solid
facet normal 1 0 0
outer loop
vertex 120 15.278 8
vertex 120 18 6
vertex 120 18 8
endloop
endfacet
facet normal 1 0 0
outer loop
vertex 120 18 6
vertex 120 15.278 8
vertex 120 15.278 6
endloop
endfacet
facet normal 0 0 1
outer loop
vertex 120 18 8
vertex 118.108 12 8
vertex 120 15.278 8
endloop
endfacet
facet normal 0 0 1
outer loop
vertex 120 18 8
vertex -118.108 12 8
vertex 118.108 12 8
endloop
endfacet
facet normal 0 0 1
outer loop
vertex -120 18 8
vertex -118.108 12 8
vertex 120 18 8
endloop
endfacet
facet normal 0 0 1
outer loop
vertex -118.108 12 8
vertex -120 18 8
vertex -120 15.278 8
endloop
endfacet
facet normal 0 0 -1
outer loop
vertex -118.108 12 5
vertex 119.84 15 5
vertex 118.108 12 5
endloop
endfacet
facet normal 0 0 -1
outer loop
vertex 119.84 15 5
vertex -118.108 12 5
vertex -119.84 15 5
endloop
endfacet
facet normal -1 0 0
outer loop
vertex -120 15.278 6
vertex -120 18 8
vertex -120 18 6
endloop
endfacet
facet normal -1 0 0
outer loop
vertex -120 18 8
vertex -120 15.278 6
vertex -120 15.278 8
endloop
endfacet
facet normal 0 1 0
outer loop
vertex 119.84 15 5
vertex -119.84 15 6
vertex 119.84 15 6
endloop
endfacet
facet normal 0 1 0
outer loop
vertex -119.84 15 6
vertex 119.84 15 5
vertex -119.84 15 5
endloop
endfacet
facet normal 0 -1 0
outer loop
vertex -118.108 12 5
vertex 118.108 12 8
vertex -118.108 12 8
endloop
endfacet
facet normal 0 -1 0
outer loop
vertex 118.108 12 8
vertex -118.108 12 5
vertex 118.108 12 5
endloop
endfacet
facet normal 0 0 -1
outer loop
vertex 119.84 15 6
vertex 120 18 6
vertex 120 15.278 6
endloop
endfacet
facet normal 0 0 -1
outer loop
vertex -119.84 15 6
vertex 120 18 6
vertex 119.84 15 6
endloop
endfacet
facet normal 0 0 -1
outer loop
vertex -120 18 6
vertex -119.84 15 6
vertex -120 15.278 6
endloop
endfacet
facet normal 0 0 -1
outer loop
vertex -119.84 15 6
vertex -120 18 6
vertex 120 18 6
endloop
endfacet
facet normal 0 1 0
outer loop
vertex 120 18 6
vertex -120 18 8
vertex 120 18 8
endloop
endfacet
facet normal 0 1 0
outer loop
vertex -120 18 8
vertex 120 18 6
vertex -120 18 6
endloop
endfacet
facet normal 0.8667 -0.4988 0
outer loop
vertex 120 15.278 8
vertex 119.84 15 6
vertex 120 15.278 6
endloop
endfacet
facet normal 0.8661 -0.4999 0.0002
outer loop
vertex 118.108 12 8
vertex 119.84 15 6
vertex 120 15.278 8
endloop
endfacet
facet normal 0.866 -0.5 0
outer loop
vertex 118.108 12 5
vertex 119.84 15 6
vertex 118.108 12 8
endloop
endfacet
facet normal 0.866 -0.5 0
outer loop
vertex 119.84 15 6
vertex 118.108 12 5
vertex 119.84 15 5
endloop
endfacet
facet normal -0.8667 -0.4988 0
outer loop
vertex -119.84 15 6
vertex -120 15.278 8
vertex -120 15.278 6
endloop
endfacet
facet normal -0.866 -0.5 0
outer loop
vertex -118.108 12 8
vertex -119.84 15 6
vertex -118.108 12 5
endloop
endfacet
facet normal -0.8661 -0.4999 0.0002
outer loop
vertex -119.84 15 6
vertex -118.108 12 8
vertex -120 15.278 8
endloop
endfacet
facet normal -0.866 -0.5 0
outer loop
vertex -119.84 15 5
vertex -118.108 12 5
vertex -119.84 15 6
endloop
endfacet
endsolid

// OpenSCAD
// file: catchnhole/catchnhole.scad
// catchnhole: because nutsnbolts was taken
// Purpose: an ergonomic way to create nutcatches and screw holes.

// License: MIT

A_LOT = 200;

bolts = import("bolts.json");
nuts = import("nuts.json");

DEFAULT_HEAD_DIAMETER_CLEARANCE = 0.1;
DEFAULT_BOLT_KIND = "headless";
DEFAULT_NUT_KIND = "hexagon";

function hex_inscribed_circle_d (w) = 2 * w / sqrt(3);

function bolt_data (options = undef, kind = DEFAULT_BOLT_KIND) = 
  is_undef(options) ? bolts : (is_string(options) ? bolts[options][kind] : options);

function nut_data (options = undef, kind = DEFAULT_NUT_KIND) =
  is_undef(options) ? nuts : (is_string(options) ? nuts[options][kind] : options);

function bolt_diameter (options) = 
  let (h = bolt_data(options))
    is_undef(h) ? h : h.diameter;

function bolt_head_length (options, kind = DEFAULT_BOLT_KIND) =
  let (h = bolt_data(options, kind))
    is_undef(h) ? h : is_undef(h.head_length) ? 0 : h.head_length;

function nut_height (options, kind = DEFAULT_NUT_KIND) =
  let (h = nut_data(options, kind))
    is_undef(h) ? h : h.thickness;

function nut_width_across_corners (options) =
  let (h = nut_data(options))
    is_undef(h) ? h : hex_inscribed_circle_d(h.width);

// Get maximum width of a nut.
// Aliased to `nut_width_across_corners` for now, but may change when, for example,
// flanged nuts are introduced.
function nut_max_width (options, kind = DEFAULT_NUT_KIND) = nut_width_across_corners(options);

module hexagon (d, h) {
  cylinder(d = d, h = h, $fn = 6);
}

//
// bolt - generate a bolt head positive
//
// Usage:
//
//     bolt_head("M3", "countersunk");
//     bolt_head("M5", head_diameter_clearence = 0.2);
//
module bolt_head (options, kind, head_diameter_clearance = DEFAULT_HEAD_DIAMETER_CLEARANCE, head_top_clearance = 0) {
  b = bolt_data(options, kind);

  if (kind == "socket_head") {
    cylinder(d = b.head_diameter + head_diameter_clearance, h = b.head_length + head_top_clearance);
  }
  else if (kind == "countersunk") {
    head_dia = b.head_diameter + head_diameter_clearance;
    cylinder(
      d1 = b.diameter + head_diameter_clearance,
      d2 = head_dia,
      h = b.head_length
    );
    translate([0, 0, b.head_length])
      cylinder(d = head_dia, head_top_clearance);
  }
  else if (kind == "hex_head") {
    hexagon(d = hex_inscribed_circle_d(b.width) + head_diameter_clearance, h = b.head_length + head_top_clearance);
  }
}

//
// bolt - generate a 2D bolt hole positive. Most commonly used because you're
// too lazy to turn that metric bolt size into a diameter.
//
// Usage:
//
//     bolt_2d("M3");
//
module bolt_2d (
  options
) {
  b = bolt_data(options, DEFAULT_BOLT_KIND);
  circle(d = b.diameter);
}

//
// bolt - generate a bolt positive.
//
// Usage:
//
//     bolt("M3", 25);
//
module bolt (
  options,
  length,
  kind = DEFAULT_BOLT_KIND,
  head_diameter_clearance = DEFAULT_HEAD_DIAMETER_CLEARANCE,
  head_top_clearance = 0,
  length_clearance = 0,
  countersink = 0
) {
  b = bolt_data(options, kind);

  head_length = is_num(b.head_length) ? b.head_length : 0;
  translate([0, 0, -countersink * head_length]) {
    translate([0, 0, -length_clearance]) {
      // If the bolt is headless, we consider the `head_top_clearance` an
      // extension of the bolt itself. Despite the kind name, the concept
      // of hiding a bolt beneath material and needing to expose its "head"
      // still applies.
      cylinder(d = b.diameter, h = length + length_clearance + (kind == "headless" ? head_top_clearance : 0));
    }

    if (kind != "headless") {
      // The "countersunk" bolt's (ISO 10642) head is part of the bolt length,
      // as opposed to any other case we handle/I can think of.
      translate([0, 0,  length - (kind == "countersunk" ? head_length : 0)]) {
        bolt_head(
          b,
          kind,
          head_diameter_clearance,
          head_top_clearance = max(
            (countersink - (kind == "countersunk" ? 0 : 1)) * head_length,
            0
          ) + head_top_clearance
        );
      }
    }
  }
}

module _nut (
  options,
  kind = "hexagon",
  height_clearance = 0,
  width_clearance = 0
) {
  n = nut_data(options, kind);
  thickness = kind == "hexagon_lock" ? n.nut_thickness : n.thickness;
  h = thickness + height_clearance;

  if (kind == "hexagon_lock") {
    lock_h = n.thickness - n.nut_thickness;
    cylinder(d = n.width + width_clearance, h = lock_h + height_clearance);
    translate([0, 0, lock_h]) {
      hexagon(d = hex_inscribed_circle_d(n.width + width_clearance), h = h);
    }
  }
  else {
    hexagon(d = hex_inscribed_circle_d(n.width + width_clearance), h = h);
  }
}

//
// nutcatch_parallel - generate a parallel (surface) nutcatch positive
//
// Usage:
//
//     nutcatch_parallel("M3");
//
module nutcatch_parallel (options, kind = "hexagon", height_clearance = 0, width_clearance = 0) {
  n = nut_data(options, kind);

  hexagon(d = hex_inscribed_circle_d(n.width + width_clearance), h = n.thickness + height_clearance);
}

//
// nutcatch_sidecut - generate a sidecut nutcatch
//
// Usage:
//
//     nutcatch_sidecut("M3");
//
module nutcatch_sidecut (options, kind = "hexagon", height_clearance = 0, width_clearance = 0, length = A_LOT) {
  n = nut_data(options, kind);
  h = n.thickness + height_clearance;
  w = n.width + width_clearance;

  _nut(options, kind, height_clearance, width_clearance);
  translate([0, -w / 2]) {
    cube([length, w, h]);
  }
}
// main file
use <catchnhole/catchnhole.scad>;

$fn = 50;
a = 50;
b = 25;
h = 25;
nutcatch_side_offset = 80;

module nuts_bolts_cutout(){
 // A sidecut nutcatch:
  translate([0, 0, -12])
    rotate([90, 0, 180]) {
      //nutcatch_sidecut("M10");
            translate([0,0,-40])
     bolt("M6", nutcatch_side_offset, kind = "headless", countersink = 0.1);
      translate([0,0,10])
      nutcatch_parallel("M6");
      
      translate([0,0,-6])
      nutcatch_parallel("M6");
      
      translate([0,0,-15])
      nutcatch_parallel("M6");

    }
 }

module half_cylinder(){
difference(){
difference(){

translate([0,6,-12])
rotate([90,0,0])
cylinder(58,30,30,center=true);


translate([0,6,-12])
rotate([90,0,0])
cylinder(60,15,15,center=true);

}

translate([0,0,-2])
cube([60,80,28], center=true);
}

}


difference(){
union(){
difference(){

union(){
    
    //translate([0,0,1.5]){
    //cube([240,30,3], center=true);
    

difference(){
//translate([0,0,-12.5])
//cube([36,30,28], center=true);

//half_cylinder();
}
//}
rotate(0,0,180){
translate([0,13.5,6.5])
cube([240,3,3], center=true);
translate([0,16.5,7])
cube([240,3,2], center=true);
}
}

# translate([128.5,0,0])
rotate([0,0,60])
translate([0,0,1.5])
cube([240,30,14], center=true);


# translate([-128.5,0,0])
rotate([0,0,-60])
translate([0,0,1.5])
cube([240,30,14], center=true);


# translate([0,0,-12])
cube([32,15,34], center=true);


//additional edge to support pushing

}



/*
# translate([0,6,-12])
rotate([90,0,0])
cylinder(10,24,24,center=true);
*/


//adjustment wheel
//# translate([0,6,-12])
//rotate([90,0,0])
//linear_extrude(12) circle(15, $fn=36);
}

//nuts_bolts_cutout();

}

;
